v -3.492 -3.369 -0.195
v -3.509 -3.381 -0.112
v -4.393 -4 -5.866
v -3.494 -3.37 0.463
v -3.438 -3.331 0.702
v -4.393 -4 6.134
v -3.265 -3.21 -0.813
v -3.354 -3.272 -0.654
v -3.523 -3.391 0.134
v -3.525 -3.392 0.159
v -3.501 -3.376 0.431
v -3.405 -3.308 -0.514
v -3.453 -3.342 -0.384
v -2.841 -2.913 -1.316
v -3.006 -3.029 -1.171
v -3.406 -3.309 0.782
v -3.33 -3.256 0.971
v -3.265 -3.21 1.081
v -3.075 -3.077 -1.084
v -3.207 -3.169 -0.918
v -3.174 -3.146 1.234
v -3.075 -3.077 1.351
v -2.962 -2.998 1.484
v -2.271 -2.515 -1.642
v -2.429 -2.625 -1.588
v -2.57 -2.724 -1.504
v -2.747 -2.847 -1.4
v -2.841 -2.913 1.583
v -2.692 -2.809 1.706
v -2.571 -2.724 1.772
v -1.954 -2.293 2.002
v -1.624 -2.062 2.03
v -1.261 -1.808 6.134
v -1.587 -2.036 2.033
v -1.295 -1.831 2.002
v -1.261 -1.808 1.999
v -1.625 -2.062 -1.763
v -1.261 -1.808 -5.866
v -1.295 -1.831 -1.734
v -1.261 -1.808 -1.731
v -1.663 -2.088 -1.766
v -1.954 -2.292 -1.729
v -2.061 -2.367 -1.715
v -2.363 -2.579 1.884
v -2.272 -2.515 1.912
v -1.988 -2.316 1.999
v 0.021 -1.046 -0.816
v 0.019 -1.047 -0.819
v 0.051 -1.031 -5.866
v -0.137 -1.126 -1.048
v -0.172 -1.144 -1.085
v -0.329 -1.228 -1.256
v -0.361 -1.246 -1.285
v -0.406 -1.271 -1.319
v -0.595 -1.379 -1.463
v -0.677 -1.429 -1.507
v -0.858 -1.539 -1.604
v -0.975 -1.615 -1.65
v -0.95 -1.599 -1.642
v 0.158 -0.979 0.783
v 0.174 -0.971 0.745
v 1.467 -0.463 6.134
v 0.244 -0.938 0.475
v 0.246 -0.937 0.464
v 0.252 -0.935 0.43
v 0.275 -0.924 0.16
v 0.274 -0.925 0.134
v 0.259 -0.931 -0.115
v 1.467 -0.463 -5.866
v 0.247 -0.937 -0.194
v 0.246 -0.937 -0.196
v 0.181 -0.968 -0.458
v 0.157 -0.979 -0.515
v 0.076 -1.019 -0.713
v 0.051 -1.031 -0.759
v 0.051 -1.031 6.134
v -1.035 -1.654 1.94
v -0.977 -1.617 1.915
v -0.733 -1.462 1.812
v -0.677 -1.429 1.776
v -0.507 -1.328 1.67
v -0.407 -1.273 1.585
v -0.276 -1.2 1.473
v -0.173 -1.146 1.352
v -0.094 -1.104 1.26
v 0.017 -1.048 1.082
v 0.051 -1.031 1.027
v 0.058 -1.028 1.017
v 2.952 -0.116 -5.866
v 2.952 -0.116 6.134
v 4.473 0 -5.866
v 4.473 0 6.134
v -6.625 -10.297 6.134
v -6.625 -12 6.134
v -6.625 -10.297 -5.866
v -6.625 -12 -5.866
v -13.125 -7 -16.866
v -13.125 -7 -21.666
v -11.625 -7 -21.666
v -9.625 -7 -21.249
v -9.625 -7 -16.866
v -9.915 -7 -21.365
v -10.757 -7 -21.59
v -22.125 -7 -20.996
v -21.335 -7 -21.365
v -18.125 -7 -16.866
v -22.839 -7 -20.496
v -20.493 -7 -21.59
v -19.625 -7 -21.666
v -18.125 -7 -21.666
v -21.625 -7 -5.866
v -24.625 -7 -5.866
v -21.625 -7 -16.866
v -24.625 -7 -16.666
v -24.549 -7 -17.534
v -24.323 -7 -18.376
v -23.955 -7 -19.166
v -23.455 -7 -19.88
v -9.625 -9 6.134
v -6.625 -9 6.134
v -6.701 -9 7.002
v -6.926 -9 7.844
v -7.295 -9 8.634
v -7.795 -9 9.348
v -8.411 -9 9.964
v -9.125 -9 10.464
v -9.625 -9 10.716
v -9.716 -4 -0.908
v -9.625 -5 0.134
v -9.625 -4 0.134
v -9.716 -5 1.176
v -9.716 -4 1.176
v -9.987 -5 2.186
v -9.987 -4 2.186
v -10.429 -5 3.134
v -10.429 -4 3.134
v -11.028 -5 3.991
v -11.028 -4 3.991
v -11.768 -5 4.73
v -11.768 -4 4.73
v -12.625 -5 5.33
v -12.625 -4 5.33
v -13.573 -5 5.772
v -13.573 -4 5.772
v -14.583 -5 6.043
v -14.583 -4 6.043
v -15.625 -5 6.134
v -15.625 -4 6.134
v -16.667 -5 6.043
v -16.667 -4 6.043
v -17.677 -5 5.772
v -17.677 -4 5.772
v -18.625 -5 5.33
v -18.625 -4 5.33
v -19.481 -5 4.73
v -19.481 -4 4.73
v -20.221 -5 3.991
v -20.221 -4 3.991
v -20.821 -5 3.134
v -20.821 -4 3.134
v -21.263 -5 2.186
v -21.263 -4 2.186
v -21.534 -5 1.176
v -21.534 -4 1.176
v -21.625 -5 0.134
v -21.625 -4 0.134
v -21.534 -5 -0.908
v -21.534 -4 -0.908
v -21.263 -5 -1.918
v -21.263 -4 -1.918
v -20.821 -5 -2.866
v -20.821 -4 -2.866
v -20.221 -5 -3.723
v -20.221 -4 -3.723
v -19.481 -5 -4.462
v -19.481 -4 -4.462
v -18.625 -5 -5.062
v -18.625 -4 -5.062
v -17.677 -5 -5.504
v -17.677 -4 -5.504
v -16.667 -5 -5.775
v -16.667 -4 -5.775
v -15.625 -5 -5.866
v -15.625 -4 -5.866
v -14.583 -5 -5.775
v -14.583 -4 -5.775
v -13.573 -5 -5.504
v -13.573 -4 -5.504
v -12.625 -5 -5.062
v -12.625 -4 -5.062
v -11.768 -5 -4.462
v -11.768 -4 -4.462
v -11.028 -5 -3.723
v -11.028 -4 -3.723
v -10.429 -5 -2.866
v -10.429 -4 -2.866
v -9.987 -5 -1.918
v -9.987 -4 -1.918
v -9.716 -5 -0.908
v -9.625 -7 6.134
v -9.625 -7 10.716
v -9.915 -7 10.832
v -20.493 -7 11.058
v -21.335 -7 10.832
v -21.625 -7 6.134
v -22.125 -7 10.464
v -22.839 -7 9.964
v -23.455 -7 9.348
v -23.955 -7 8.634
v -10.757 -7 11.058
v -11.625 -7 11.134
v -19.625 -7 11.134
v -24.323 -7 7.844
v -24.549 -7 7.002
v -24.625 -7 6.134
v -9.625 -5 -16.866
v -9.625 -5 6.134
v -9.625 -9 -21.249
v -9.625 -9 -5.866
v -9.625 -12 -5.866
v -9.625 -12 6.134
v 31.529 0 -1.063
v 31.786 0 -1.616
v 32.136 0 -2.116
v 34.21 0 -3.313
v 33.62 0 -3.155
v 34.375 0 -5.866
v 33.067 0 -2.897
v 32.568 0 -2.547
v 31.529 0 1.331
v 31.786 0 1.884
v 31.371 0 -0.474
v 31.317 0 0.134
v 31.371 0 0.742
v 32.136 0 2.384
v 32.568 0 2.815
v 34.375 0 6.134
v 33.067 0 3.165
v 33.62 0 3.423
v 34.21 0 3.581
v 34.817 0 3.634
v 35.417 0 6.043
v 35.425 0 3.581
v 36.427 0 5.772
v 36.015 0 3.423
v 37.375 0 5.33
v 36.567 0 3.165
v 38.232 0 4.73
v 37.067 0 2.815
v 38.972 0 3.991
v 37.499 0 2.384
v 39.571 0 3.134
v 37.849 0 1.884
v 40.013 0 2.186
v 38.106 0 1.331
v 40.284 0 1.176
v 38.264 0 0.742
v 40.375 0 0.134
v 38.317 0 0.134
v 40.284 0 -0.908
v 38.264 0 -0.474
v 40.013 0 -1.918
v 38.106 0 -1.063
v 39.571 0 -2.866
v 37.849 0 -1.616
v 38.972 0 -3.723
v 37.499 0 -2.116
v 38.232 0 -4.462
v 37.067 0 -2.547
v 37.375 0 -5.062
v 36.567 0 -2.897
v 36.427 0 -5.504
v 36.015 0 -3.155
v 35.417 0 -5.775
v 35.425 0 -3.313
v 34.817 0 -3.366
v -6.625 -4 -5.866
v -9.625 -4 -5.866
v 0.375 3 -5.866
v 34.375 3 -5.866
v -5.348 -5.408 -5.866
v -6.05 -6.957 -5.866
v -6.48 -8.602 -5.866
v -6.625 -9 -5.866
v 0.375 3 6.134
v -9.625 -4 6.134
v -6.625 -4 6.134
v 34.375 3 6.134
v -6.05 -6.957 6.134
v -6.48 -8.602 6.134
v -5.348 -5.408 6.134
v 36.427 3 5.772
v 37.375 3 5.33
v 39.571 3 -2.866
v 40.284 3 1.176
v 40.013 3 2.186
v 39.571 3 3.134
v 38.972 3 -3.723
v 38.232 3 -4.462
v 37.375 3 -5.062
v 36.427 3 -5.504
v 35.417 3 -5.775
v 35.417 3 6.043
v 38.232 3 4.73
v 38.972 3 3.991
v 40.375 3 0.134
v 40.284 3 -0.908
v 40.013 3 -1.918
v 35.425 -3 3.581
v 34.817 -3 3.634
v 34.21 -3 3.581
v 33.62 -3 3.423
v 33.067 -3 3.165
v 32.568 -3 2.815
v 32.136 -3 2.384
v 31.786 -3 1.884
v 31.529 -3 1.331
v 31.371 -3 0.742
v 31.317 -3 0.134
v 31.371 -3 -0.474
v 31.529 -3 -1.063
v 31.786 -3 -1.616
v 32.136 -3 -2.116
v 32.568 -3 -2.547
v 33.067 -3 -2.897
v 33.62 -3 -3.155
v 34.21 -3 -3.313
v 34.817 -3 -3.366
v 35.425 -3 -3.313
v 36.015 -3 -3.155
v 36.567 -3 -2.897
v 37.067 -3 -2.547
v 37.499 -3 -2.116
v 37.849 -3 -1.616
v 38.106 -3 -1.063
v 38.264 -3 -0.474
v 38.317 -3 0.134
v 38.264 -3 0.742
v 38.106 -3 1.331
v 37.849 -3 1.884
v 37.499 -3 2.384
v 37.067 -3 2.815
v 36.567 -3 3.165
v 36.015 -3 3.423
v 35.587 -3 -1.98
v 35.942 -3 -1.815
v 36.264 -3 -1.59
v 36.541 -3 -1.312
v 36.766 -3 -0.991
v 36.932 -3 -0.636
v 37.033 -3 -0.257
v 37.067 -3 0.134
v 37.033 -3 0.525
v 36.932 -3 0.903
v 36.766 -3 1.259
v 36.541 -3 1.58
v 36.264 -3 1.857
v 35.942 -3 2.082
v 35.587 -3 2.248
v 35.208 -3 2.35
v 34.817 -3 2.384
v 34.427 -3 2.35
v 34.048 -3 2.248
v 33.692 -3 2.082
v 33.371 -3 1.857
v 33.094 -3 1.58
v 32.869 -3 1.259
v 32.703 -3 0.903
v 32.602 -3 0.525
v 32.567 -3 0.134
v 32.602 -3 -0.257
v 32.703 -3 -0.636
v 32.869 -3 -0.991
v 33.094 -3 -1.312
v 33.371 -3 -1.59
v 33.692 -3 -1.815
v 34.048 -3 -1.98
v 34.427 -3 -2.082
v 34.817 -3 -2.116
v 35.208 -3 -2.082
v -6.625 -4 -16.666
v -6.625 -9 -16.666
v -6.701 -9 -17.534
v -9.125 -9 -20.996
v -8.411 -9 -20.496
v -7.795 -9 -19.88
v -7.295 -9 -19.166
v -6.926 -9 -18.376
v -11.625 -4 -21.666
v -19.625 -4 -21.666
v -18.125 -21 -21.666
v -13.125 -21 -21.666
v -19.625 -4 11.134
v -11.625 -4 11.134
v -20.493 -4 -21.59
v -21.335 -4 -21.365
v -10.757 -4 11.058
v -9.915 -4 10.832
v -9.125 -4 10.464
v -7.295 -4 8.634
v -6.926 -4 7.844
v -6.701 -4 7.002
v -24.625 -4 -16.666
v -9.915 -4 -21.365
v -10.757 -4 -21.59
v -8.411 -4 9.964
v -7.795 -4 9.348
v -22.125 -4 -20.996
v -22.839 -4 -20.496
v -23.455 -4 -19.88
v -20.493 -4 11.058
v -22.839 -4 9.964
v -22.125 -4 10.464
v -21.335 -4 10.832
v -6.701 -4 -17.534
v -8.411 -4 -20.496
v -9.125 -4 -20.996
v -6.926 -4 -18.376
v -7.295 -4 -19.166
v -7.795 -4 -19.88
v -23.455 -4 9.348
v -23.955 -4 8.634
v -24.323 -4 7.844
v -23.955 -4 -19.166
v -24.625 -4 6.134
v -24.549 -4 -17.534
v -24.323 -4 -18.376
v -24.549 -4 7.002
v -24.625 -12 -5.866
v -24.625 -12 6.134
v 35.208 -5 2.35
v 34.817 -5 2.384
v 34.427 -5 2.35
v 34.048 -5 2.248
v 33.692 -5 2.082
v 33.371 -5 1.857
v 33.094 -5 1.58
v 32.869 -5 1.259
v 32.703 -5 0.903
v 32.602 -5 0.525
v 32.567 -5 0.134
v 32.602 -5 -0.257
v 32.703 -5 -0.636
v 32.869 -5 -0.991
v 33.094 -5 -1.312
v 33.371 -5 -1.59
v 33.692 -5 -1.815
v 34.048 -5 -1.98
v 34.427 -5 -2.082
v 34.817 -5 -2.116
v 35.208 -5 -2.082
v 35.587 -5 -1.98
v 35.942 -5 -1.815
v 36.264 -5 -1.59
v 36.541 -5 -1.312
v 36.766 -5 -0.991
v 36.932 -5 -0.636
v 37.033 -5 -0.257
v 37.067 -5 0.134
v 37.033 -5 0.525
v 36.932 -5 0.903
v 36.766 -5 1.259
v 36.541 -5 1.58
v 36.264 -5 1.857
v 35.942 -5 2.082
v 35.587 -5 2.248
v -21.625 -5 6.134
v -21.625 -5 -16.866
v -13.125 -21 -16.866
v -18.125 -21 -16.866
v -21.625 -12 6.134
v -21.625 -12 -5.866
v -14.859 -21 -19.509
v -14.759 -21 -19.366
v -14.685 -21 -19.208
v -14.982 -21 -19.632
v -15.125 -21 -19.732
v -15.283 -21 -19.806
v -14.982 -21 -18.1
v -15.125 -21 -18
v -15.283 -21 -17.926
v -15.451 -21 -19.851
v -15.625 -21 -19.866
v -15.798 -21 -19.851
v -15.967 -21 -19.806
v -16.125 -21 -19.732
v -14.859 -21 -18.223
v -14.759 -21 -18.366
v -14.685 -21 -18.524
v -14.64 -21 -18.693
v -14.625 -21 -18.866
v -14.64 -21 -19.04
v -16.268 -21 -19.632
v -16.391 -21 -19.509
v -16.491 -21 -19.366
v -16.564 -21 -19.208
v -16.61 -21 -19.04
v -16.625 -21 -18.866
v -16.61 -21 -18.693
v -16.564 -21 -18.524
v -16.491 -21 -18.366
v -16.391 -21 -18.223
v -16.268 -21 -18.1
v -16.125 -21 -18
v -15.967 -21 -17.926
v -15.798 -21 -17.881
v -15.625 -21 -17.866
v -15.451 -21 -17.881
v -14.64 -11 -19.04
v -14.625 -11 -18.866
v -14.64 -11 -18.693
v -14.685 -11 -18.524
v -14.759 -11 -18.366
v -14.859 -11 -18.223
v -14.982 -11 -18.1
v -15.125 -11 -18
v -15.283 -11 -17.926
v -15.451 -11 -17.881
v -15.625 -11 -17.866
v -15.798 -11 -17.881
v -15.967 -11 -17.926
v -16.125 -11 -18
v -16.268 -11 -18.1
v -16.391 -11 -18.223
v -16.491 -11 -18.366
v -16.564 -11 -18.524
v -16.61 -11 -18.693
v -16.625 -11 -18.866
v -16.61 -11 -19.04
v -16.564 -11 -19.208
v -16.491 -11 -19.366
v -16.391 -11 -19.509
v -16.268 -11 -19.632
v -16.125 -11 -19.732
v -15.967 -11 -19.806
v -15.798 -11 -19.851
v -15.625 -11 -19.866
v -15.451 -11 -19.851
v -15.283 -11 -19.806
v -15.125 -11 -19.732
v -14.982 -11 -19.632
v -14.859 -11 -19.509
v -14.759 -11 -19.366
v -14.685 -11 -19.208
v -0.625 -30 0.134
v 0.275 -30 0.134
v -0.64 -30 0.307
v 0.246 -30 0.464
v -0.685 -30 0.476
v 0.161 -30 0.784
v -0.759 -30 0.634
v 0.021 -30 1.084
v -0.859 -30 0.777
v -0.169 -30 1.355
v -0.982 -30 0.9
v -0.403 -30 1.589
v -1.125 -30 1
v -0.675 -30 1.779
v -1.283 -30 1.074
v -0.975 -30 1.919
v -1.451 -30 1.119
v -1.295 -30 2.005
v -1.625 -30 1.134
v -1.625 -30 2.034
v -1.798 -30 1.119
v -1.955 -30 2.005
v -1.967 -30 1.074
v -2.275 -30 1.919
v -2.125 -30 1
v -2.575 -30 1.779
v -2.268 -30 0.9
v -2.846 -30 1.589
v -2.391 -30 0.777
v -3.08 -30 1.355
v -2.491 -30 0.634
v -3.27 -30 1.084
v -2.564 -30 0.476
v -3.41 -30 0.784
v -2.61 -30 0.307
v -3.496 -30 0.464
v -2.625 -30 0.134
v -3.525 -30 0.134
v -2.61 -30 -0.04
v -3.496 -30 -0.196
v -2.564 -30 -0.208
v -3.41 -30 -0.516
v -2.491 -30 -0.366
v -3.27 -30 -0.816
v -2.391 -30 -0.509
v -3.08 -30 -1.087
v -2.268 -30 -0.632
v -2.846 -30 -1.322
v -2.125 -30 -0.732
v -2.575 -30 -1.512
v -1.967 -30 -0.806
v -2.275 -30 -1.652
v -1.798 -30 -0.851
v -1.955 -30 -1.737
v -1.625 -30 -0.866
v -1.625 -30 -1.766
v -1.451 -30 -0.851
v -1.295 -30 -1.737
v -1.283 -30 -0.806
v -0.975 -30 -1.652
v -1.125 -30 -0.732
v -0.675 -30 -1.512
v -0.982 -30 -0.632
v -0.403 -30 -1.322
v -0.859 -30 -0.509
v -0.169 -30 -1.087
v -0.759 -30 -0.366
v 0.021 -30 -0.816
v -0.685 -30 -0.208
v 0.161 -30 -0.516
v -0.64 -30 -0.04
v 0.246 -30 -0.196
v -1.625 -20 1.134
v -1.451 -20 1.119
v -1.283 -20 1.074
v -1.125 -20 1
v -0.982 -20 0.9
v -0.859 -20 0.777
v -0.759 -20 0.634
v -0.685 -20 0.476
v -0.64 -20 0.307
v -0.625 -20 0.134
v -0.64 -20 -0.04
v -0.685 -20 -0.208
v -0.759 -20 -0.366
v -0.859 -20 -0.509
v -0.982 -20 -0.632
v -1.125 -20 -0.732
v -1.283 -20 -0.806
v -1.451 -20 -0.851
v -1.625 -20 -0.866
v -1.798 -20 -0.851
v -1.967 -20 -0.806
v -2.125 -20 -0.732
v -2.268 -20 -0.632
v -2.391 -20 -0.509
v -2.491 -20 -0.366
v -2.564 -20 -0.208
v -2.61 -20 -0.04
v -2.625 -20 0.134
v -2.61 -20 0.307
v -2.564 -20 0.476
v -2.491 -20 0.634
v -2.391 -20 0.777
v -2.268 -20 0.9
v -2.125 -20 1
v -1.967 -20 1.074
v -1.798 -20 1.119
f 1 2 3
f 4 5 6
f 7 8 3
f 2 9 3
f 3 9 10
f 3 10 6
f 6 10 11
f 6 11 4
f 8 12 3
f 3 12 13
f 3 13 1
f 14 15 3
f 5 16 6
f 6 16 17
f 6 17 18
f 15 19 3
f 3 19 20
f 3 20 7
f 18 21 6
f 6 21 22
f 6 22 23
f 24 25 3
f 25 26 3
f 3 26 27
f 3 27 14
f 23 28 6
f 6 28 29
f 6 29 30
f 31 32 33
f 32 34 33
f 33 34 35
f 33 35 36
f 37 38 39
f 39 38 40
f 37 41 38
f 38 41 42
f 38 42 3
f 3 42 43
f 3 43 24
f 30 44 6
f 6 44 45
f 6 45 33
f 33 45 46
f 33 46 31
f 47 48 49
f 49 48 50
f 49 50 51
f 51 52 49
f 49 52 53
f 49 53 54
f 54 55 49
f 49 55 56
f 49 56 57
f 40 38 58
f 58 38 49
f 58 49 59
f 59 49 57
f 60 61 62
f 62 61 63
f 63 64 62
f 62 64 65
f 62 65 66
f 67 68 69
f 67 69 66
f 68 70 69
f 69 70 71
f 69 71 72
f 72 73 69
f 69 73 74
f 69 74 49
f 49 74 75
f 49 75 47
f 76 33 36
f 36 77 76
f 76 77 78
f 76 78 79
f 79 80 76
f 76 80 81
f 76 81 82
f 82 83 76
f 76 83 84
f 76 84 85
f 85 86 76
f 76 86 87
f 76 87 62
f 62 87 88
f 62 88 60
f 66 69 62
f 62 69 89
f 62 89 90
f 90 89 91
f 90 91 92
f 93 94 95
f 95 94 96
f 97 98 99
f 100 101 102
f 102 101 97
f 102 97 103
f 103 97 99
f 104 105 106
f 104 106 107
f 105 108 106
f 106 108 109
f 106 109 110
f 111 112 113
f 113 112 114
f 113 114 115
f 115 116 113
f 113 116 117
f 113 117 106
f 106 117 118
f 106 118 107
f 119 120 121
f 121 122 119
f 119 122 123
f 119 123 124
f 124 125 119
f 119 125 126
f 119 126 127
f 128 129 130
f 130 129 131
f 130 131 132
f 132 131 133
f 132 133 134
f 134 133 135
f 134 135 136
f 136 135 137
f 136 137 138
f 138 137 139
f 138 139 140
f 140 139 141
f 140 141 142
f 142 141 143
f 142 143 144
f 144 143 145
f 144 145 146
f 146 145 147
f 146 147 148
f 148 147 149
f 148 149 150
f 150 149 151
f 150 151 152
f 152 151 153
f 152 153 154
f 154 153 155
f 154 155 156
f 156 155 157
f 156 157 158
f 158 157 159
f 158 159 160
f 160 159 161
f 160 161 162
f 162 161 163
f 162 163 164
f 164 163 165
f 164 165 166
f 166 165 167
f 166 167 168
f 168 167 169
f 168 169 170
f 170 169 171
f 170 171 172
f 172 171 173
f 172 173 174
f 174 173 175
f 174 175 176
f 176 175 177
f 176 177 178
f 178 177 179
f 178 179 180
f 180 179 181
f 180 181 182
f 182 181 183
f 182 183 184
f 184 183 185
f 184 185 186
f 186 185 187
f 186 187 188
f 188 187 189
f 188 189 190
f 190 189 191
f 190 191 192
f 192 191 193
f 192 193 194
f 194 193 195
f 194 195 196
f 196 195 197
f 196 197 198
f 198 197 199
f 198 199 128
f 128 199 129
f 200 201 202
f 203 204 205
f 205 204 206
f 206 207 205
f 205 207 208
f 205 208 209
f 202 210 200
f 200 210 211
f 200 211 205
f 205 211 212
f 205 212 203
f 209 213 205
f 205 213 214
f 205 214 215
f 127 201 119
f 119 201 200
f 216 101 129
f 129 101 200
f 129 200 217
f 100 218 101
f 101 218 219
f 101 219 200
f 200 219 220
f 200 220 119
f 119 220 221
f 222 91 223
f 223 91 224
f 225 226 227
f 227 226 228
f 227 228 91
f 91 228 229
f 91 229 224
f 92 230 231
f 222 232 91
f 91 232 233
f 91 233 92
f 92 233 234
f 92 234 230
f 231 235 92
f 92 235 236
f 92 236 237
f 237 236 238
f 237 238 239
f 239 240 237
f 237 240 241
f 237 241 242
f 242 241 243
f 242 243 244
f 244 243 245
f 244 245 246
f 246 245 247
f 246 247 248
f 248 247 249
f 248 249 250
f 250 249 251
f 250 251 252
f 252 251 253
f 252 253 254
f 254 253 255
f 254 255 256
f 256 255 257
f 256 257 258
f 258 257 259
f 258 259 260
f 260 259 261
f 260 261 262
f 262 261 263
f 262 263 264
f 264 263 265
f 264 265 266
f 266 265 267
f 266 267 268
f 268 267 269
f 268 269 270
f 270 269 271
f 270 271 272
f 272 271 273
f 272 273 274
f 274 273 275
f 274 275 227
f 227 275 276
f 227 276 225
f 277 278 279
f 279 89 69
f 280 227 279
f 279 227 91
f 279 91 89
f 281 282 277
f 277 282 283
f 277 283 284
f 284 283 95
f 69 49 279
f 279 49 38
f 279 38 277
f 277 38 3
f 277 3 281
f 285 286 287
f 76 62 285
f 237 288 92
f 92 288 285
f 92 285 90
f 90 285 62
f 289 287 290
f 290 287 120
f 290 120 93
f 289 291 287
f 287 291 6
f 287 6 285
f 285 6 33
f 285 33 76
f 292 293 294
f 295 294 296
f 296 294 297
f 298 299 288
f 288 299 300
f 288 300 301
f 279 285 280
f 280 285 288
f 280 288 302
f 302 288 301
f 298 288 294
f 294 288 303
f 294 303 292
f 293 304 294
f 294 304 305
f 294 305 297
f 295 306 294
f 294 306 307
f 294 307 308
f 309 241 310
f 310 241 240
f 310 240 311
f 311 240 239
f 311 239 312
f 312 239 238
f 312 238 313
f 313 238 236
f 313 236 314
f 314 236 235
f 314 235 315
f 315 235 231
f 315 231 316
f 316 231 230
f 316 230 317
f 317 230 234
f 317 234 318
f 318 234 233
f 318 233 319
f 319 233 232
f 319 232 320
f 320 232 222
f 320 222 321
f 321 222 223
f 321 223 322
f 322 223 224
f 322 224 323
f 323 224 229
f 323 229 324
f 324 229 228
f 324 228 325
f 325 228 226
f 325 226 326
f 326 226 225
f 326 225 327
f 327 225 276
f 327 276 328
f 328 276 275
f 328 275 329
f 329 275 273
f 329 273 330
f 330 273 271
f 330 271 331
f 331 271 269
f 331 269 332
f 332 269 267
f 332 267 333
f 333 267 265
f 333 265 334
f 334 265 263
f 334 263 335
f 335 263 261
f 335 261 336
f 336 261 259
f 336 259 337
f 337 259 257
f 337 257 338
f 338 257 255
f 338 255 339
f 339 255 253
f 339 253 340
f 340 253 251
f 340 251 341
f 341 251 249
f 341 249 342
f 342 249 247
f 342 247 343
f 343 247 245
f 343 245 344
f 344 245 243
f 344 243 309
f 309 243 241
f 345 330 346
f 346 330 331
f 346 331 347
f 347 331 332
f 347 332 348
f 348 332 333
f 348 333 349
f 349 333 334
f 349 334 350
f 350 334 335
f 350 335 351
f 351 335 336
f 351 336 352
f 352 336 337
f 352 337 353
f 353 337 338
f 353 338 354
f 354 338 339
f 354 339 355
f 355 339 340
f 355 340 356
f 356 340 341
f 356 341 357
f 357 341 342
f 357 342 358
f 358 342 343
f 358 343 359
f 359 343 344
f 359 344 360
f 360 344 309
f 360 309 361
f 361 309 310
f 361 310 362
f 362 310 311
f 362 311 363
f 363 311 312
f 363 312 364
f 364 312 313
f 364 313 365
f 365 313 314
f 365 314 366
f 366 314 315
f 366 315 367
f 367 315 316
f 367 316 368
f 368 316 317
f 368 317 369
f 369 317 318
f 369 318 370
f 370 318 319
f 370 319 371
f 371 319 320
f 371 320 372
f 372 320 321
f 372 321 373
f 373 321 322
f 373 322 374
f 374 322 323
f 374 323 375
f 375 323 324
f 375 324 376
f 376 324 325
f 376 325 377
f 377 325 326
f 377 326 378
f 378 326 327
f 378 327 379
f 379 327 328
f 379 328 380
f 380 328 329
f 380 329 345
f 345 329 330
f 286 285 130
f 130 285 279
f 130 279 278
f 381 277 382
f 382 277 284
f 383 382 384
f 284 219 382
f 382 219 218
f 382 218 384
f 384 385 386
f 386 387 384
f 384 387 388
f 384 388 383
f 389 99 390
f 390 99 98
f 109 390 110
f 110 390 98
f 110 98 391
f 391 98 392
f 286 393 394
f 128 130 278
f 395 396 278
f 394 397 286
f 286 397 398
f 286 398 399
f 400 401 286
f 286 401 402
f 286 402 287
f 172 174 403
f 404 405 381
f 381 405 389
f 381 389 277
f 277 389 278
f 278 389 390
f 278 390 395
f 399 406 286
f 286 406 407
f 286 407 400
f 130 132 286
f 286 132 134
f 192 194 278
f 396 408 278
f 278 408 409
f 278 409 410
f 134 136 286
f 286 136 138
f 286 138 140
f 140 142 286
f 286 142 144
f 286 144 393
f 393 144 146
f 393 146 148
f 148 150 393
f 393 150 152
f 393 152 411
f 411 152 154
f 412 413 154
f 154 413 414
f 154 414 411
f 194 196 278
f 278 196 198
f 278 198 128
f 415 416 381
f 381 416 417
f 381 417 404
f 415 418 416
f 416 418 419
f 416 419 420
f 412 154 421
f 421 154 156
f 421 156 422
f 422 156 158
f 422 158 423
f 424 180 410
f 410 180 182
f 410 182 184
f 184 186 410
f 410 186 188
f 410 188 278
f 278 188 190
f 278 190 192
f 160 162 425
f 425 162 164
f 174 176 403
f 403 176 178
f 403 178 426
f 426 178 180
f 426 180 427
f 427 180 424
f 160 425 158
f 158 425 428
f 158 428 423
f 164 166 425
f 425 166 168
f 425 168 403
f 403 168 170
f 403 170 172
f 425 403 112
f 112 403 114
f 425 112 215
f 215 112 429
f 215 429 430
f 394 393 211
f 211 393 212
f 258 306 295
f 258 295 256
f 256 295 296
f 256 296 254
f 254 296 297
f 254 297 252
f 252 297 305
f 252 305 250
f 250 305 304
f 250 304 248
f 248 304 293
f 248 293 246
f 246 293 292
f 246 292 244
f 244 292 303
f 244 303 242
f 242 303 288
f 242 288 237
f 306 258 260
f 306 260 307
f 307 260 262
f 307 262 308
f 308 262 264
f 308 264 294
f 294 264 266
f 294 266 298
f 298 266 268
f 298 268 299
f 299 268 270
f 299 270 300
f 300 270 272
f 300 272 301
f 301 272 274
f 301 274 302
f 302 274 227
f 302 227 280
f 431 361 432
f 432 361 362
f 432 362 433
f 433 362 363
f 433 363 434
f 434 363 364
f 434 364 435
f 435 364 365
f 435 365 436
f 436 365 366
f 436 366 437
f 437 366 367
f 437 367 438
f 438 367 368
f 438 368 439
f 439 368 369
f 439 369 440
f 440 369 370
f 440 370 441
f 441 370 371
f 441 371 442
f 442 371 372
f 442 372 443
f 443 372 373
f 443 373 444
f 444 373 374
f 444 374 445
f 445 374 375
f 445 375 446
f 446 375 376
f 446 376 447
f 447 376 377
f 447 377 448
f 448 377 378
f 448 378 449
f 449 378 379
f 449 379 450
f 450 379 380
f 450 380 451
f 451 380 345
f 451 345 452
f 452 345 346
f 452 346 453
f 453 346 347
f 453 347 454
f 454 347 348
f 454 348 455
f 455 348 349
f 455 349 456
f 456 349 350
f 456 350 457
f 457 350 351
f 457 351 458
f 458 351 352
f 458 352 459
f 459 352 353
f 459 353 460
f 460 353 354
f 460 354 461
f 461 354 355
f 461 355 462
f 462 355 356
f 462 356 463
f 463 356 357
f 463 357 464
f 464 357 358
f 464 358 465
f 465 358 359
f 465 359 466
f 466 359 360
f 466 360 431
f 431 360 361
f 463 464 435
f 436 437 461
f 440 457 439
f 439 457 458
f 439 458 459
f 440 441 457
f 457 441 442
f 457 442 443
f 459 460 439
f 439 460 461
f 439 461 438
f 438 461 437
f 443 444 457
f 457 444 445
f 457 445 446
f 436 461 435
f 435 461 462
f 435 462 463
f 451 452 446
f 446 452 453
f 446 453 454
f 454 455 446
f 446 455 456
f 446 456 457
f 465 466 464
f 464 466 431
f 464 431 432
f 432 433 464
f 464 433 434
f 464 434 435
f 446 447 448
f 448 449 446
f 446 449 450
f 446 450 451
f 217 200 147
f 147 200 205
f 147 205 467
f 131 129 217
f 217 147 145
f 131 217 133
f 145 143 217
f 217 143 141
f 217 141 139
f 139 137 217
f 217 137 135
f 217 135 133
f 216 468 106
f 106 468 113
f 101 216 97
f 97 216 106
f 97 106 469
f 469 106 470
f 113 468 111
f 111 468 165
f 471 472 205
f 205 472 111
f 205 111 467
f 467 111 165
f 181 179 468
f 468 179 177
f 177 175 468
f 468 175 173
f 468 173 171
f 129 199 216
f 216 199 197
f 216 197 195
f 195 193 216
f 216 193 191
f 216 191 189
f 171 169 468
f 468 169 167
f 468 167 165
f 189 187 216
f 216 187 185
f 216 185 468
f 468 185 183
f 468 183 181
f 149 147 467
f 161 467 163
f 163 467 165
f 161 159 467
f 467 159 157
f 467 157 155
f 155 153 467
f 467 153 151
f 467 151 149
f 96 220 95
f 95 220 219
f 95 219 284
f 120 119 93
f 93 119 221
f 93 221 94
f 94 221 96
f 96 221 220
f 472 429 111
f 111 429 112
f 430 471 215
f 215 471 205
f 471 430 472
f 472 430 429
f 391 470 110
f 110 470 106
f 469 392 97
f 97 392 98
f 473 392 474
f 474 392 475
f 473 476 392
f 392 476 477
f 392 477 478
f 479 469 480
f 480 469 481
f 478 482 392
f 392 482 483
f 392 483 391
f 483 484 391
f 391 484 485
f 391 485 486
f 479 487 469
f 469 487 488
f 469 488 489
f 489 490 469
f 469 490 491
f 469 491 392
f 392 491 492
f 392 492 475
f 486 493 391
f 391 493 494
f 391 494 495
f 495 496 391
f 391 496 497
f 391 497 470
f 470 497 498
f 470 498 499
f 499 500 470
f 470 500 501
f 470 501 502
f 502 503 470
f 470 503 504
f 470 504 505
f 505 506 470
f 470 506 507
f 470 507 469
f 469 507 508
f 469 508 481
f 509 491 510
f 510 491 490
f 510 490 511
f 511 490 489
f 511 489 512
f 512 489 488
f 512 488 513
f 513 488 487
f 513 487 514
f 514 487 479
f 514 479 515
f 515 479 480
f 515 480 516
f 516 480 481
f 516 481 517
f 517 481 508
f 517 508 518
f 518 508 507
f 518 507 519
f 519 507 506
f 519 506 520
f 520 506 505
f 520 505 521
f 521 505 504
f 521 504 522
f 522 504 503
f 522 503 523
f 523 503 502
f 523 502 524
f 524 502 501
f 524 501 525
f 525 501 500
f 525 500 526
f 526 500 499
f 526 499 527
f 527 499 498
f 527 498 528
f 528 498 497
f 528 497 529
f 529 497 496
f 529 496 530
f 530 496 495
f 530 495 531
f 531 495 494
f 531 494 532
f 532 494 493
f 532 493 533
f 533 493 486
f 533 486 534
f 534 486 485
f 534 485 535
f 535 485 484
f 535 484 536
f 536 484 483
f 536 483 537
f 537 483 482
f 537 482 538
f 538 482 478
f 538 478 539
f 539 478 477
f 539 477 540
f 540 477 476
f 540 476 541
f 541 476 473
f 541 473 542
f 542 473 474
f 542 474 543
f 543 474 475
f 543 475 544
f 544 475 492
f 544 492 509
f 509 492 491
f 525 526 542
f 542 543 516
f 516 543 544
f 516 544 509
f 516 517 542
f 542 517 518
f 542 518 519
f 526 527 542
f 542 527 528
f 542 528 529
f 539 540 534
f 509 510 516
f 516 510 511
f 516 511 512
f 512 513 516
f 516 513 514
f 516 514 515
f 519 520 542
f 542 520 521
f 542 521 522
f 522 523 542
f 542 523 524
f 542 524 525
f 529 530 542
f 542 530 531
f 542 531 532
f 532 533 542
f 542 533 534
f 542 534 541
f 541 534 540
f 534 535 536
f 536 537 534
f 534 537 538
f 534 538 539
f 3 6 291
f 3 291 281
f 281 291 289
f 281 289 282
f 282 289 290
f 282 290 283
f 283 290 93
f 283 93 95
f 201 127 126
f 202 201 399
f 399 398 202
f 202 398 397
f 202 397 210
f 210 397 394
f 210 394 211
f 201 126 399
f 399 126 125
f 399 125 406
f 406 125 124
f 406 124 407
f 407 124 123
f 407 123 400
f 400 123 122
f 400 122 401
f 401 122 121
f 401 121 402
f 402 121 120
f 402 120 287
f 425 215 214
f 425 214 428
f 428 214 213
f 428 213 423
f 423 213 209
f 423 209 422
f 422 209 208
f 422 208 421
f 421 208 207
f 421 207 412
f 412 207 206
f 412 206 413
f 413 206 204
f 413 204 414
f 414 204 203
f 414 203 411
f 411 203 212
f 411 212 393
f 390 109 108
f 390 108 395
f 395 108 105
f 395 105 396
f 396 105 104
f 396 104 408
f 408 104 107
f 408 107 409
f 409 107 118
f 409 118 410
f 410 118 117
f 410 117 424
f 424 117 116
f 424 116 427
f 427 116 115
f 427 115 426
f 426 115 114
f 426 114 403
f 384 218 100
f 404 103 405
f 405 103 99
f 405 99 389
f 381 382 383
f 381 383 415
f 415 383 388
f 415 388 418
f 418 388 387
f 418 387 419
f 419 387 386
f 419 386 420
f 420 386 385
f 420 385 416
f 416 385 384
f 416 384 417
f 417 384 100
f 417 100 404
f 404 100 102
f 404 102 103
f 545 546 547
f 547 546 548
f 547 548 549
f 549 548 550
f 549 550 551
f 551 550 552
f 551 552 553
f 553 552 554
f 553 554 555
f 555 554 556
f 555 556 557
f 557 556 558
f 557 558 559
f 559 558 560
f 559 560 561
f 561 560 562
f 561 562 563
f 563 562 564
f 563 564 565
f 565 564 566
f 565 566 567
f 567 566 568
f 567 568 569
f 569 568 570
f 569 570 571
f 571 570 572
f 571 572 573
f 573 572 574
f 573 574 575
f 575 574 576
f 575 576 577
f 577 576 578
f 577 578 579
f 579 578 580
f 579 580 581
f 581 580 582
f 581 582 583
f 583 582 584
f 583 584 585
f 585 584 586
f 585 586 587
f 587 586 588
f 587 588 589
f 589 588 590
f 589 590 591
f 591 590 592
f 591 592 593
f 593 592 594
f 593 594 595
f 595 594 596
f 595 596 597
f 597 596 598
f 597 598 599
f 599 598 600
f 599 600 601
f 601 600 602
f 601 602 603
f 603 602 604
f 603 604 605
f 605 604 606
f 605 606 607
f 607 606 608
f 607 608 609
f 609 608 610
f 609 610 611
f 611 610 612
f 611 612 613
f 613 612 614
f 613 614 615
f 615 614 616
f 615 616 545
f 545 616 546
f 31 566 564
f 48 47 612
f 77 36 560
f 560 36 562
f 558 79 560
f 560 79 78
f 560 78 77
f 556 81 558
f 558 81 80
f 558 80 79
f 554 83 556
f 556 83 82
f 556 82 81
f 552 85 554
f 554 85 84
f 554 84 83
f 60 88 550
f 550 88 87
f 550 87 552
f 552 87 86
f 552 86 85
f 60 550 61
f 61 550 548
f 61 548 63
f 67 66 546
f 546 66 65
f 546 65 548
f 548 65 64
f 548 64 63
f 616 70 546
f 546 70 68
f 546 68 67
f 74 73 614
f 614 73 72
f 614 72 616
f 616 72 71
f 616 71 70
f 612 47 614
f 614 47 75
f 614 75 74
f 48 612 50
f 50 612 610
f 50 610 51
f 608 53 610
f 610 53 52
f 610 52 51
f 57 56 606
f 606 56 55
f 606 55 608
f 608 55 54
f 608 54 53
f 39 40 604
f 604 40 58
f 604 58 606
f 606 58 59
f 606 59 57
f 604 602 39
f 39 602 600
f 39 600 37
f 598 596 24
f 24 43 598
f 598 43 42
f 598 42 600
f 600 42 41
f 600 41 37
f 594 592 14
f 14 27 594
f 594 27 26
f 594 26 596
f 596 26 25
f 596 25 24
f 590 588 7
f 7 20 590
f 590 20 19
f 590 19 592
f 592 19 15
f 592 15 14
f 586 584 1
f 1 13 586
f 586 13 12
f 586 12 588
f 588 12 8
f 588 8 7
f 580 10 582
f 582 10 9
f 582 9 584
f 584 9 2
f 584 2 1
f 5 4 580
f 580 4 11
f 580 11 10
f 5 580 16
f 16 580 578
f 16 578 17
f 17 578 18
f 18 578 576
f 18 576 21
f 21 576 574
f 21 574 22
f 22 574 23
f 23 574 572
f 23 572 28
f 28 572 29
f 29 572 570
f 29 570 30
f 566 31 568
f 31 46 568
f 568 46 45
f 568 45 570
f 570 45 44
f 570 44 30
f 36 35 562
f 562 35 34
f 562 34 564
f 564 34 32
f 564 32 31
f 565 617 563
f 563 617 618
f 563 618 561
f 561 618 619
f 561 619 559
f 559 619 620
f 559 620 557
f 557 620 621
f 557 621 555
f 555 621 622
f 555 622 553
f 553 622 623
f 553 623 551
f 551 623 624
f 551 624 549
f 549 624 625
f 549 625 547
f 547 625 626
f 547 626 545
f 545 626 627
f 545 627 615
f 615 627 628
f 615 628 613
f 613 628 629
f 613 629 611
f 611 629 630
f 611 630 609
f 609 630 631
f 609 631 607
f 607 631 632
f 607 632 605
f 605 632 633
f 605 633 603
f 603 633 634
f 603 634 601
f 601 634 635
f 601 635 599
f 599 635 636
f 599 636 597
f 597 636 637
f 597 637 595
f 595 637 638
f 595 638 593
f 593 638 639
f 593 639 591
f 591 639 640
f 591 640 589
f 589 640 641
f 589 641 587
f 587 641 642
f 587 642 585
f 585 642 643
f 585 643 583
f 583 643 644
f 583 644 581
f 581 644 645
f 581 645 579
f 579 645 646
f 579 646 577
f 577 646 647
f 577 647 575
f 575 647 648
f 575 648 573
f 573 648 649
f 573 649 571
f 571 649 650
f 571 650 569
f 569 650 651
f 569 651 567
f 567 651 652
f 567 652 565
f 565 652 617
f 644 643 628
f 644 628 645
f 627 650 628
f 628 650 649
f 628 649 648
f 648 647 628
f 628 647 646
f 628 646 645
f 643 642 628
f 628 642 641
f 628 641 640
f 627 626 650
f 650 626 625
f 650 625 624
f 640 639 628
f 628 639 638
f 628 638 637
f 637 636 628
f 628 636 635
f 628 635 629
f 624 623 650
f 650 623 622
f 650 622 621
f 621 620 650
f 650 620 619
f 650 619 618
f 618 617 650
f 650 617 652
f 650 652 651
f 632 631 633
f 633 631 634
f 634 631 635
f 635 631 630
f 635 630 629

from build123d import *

# Parameters (mm, degrees)
SKETCH1_W            = 40
SKETCH1_H            = 12
BOSS_EXTRUDE1_DEPTH  = 3
SKETCH1_7_R          = 3.5
BOSS_EXTRUDE2_DEPTH  = 3
BOSS_EXTRUDE4_DEPTH  = 12
SKETCH4_W            = 3
SKETCH4_H            = 12
BOSS_EXTRUDE5_DEPTH  = 5
FILLET3_R            = 10
BOSS_EXTRUDE11_START = -27.8
BOSS_EXTRUDE11_DEPTH = 32.8
CUT_EXTRUDE2_DEPTH   = 47.899705007
FILLET7_R            = 6
BOSS_EXTRUDE12_DEPTH = 5
CUT_EXTRUDE3_START   = -2
CUT_EXTRUDE3_DEPTH   = 2
SKETCH13_W           = 3
SKETCH13_H           = 12
BOSS_EXTRUDE13_DEPTH = 5
SKETCH13_3_W         = 5
SKETCH13_3_H         = 4.8
BOSS_EXTRUDE14_DEPTH = 14
SKETCH14_R           = 1
CUT_EXTRUDE4_DEPTH   = 10
FILLET8_R            = 10
FILLET9_R            = 5
SKETCH15_R           = 1.9
SKETCH15_R_2         = 1
BOSS_EXTRUDE15_DEPTH = 30
SKETCH15_2_R         = 1
BOSS_EXTRUDE16_DEPTH = 20


# Read off the part's stored shape, not the designer's step: Boss-Extrude11, Cut-Extrude3
# Some blends are built 0.0001 mm under size
with BuildPart() as part:
    # Sketch1 → Boss-Extrude1 (new body)
    with BuildSketch(Plane(origin=(0, 0, 0), x_dir=(1, 0, 0), z_dir=(0, 1, 0))):
        with Locations((20.375241408, -0.133846421)):
            Rectangle(SKETCH1_W, SKETCH1_H)
    extrude(amount=BOSS_EXTRUDE1_DEPTH)

    # Sketch1<7> → Boss-Extrude2 (add)
    with BuildSketch(Plane(origin=(0, 0, 0), x_dir=(1, 0, 0), z_dir=(0, 1, 0))):
        with Locations(Location((34.817424324, -0.133846421, 0), (0, 0, 270))):
            Circle(SKETCH1_7_R)
    extrude(amount=-BOSS_EXTRUDE2_DEPTH)

    # Sketch3 → Boss-Extrude4 (add)
    with BuildSketch(Plane.XY.offset(6.133846421)):
        Polygon((0.375241408, 3), (-9.624758592, -4), (-4.393377613, -4), (5.606622387, 3), align=None)
    extrude(amount=-BOSS_EXTRUDE4_DEPTH)

    # Sketch4 → Boss-Extrude5 (add)
    with BuildSketch(Plane(origin=(0, -4, 0), x_dir=(-1, 0, 0), z_dir=(0, -1, 0))):
        with Locations((8.124758592, -0.133846421)):
            Rectangle(SKETCH4_W, SKETCH4_H)
    extrude(amount=BOSS_EXTRUDE5_DEPTH)

    # Fillet3
    fillet3_edges = [part.edges().sort_by_distance(p)[0] for p in [
        (1.320908101, 0, 0.133846421),
    ]]
    fillet(fillet3_edges, radius=FILLET3_R)

    # Boss-Extrude11 outline → Boss-Extrude11 (add)
    with BuildSketch(Plane.XY.offset(6.133846421).offset(BOSS_EXTRUDE11_START)):
        Polygon((-9.624758592, -7), (-9.624758592, -9), (-6.624758592, -9), (-6.624758592, -4), (-24.624758592, -4), (-24.624758592, -7), align=None)
    extrude(amount=BOSS_EXTRUDE11_DEPTH)

    # Sketch12 → Cut-Extrude2 (cut, through all)
    with BuildSketch(Plane(origin=(0, -7, 0), x_dir=(-1, 0, 0), z_dir=(0, -1, 0))):
        with BuildLine():
            ThreePointArc((9.624758592, -0.133846421), (11.382117904, -4.376487108), (15.624758592, -6.133846421))
            Line((15.624758592, -6.133846421), (15.624758592, 5.866153579))
            ThreePointArc((15.624758592, 5.866153579), (11.382117904, 4.108794266), (9.624758592, -0.133846421))
        make_face()
        with BuildLine():
            Line((15.624758592, 5.866153579), (15.624758592, -6.133846421))
            ThreePointArc((15.624758592, -6.133846421), (19.867399279, -4.376487108), (21.624758592, -0.133846421))
            ThreePointArc((21.624758592, -0.133846421), (19.867399279, 4.108794266), (15.624758592, 5.866153579))
        make_face()
    extrude(amount=-CUT_EXTRUDE2_DEPTH, mode=Mode.SUBTRACT)

    # Fillet7
    fillet7_edges = [part.edges().sort_by_distance(p)[0] for p in [
        (40.375241408, 1.5, -5.866153579),
        (40.375241408, 1.5, 6.133846421),
    ]]
    fillet(fillet7_edges, radius=FILLET7_R - 0.0001)  # a hair under: the kernel refuses the full size

    # Sketch1<9> → Boss-Extrude12 (add)
    with BuildSketch(Plane(origin=(0, 0, 0), x_dir=(1, 0, 0), z_dir=(0, 1, 0))):
        with BuildLine():
            ThreePointArc((32.567424324, -0.133846421), (34.817424324, -2.383846421), (37.067424324, -0.133846421))
            Line((37.067424324, -0.133846421), (32.567424324, -0.133846421))
        make_face()
        with BuildLine():
            Line((32.567424324, -0.133846421), (37.067424324, -0.133846421))
            ThreePointArc((37.067424324, -0.133846421), (34.817424324, 2.116153579), (32.567424324, -0.133846421))
        make_face()
    extrude(amount=-BOSS_EXTRUDE12_DEPTH)

    # Cut-Extrude3 outline → Cut-Extrude3 (cut)
    with BuildSketch(Plane(origin=(0, -7, 0), x_dir=(-1, 0, 0), z_dir=(0, -1, 0)).offset(CUT_EXTRUDE3_START)):
        with BuildLine():
            Line((21.624758592, 16.866153579), (9.624758592, 16.866153579))
            Line((9.624758592, 16.866153579), (9.624758592, -0.133846426))
            ThreePointArc((9.624758592, -0.133846426), (15.624758589, 5.866153579), (21.624758592, -0.133846421))
            Line((21.624758592, -0.133846421), (21.624758592, 16.866153579))
        make_face()
        with BuildLine():
            ThreePointArc((15.624758592, -6.133846421), (11.382117907, -4.37648711), (9.624758592, -0.133846426))
            Line((9.624758592, -0.133846426), (9.624758592, -6.133846421))
            Line((9.624758592, -6.133846421), (15.624758592, -6.133846421))
        make_face()
        with BuildLine():
            Line((21.624758592, -6.133846421), (21.624758592, -0.133846421))
            ThreePointArc((21.624758592, -0.133846421), (19.867399279, -4.376487108), (15.624758592, -6.133846421))
            Line((15.624758592, -6.133846421), (21.624758592, -6.133846421))
        make_face()
    extrude(amount=CUT_EXTRUDE3_DEPTH, mode=Mode.SUBTRACT)

    # Sketch13 → Boss-Extrude13 (add)
    with BuildSketch(Plane(origin=(0, -7, 0), x_dir=(-1, 0, 0), z_dir=(0, -1, 0))):
        with Locations((8.124758592, -0.133846421)):
            Rectangle(SKETCH13_W, SKETCH13_H)
        with Locations((23.124758592, -0.133846421)):
            Rectangle(SKETCH13_W, SKETCH13_H)
    extrude(amount=BOSS_EXTRUDE13_DEPTH)

    # Sketch13<3> → Boss-Extrude14 (add)
    with BuildSketch(Plane(origin=(0, -7, 0), x_dir=(-1, 0, 0), z_dir=(0, -1, 0))):
        with Locations((15.624758592, 19.266153579)):
            Rectangle(SKETCH13_3_W, SKETCH13_3_H)
    extrude(amount=BOSS_EXTRUDE14_DEPTH)

    # Sketch14 → Cut-Extrude4 (cut)
    with BuildSketch(Plane.XZ.offset(21)):
        with Locations((-15.624758592, -18.866153579)):
            Circle(SKETCH14_R)
        with Locations((-15.624758592, 8.133846421)):
            Circle(SKETCH14_R)
    extrude(amount=-CUT_EXTRUDE4_DEPTH, mode=Mode.SUBTRACT)

    # Fillet8
    # the kernel refuses this fillet: 10 mm, written as the material it adds along each edge
    with BuildSketch(Plane(origin=(-6.624758592, -4, -5.866153579), x_dir=(1, 0, 0), z_dir=(0, 0, 1))) as fillet8_piece_1:
        with BuildLine():
            CenterArc((10, -6.296710133), FILLET8_R, 140.974145336, 39.025854664)
            Line((0, -6.296710133), (0, 0))
            Line((0, 0), (2.231380978, 0))
        make_face()
    extrude(amount=12)

    # Fillet9
    fillet9_edges = [part.edges().sort_by_distance(p)[0] for p in [
        (-24.624758592, -5.5, -21.666153579),
        (-6.624758592, -6.5, -21.666153579),
        (-6.624758592, -6.5, 11.133846421),
        (-24.624758592, -5.5, 11.133846421),
    ]]
    fillet(fillet9_edges, radius=FILLET9_R - 0.0001)  # a hair under: the kernel refuses the full size

    # Sketch15 → Boss-Extrude15 (add)
    with BuildSketch(Plane(origin=(0, 0, 0), x_dir=(-1, 0, 0), z_dir=(0, -1, 0))):
        with Locations(Location((1.624758592, -0.133846421, 0), (0, 0, 258.977606014))):
            Circle(SKETCH15_R)
        with Locations(Location((1.624758592, -0.133846421, 0), (0, 0, 248.699103744))):
            Circle(SKETCH15_R_2, mode=Mode.SUBTRACT)
    extrude(amount=BOSS_EXTRUDE15_DEPTH)

    # Sketch15<2> → Boss-Extrude16 (add)
    with BuildSketch(Plane(origin=(0, 0, 0), x_dir=(-1, 0, 0), z_dir=(0, -1, 0))):
        with Locations(Location((1.624758592, -0.133846421, 0), (0, 0, 90))):
            Circle(SKETCH15_2_R)
    extrude(amount=BOSS_EXTRUDE16_DEPTH)


solid = part.part
